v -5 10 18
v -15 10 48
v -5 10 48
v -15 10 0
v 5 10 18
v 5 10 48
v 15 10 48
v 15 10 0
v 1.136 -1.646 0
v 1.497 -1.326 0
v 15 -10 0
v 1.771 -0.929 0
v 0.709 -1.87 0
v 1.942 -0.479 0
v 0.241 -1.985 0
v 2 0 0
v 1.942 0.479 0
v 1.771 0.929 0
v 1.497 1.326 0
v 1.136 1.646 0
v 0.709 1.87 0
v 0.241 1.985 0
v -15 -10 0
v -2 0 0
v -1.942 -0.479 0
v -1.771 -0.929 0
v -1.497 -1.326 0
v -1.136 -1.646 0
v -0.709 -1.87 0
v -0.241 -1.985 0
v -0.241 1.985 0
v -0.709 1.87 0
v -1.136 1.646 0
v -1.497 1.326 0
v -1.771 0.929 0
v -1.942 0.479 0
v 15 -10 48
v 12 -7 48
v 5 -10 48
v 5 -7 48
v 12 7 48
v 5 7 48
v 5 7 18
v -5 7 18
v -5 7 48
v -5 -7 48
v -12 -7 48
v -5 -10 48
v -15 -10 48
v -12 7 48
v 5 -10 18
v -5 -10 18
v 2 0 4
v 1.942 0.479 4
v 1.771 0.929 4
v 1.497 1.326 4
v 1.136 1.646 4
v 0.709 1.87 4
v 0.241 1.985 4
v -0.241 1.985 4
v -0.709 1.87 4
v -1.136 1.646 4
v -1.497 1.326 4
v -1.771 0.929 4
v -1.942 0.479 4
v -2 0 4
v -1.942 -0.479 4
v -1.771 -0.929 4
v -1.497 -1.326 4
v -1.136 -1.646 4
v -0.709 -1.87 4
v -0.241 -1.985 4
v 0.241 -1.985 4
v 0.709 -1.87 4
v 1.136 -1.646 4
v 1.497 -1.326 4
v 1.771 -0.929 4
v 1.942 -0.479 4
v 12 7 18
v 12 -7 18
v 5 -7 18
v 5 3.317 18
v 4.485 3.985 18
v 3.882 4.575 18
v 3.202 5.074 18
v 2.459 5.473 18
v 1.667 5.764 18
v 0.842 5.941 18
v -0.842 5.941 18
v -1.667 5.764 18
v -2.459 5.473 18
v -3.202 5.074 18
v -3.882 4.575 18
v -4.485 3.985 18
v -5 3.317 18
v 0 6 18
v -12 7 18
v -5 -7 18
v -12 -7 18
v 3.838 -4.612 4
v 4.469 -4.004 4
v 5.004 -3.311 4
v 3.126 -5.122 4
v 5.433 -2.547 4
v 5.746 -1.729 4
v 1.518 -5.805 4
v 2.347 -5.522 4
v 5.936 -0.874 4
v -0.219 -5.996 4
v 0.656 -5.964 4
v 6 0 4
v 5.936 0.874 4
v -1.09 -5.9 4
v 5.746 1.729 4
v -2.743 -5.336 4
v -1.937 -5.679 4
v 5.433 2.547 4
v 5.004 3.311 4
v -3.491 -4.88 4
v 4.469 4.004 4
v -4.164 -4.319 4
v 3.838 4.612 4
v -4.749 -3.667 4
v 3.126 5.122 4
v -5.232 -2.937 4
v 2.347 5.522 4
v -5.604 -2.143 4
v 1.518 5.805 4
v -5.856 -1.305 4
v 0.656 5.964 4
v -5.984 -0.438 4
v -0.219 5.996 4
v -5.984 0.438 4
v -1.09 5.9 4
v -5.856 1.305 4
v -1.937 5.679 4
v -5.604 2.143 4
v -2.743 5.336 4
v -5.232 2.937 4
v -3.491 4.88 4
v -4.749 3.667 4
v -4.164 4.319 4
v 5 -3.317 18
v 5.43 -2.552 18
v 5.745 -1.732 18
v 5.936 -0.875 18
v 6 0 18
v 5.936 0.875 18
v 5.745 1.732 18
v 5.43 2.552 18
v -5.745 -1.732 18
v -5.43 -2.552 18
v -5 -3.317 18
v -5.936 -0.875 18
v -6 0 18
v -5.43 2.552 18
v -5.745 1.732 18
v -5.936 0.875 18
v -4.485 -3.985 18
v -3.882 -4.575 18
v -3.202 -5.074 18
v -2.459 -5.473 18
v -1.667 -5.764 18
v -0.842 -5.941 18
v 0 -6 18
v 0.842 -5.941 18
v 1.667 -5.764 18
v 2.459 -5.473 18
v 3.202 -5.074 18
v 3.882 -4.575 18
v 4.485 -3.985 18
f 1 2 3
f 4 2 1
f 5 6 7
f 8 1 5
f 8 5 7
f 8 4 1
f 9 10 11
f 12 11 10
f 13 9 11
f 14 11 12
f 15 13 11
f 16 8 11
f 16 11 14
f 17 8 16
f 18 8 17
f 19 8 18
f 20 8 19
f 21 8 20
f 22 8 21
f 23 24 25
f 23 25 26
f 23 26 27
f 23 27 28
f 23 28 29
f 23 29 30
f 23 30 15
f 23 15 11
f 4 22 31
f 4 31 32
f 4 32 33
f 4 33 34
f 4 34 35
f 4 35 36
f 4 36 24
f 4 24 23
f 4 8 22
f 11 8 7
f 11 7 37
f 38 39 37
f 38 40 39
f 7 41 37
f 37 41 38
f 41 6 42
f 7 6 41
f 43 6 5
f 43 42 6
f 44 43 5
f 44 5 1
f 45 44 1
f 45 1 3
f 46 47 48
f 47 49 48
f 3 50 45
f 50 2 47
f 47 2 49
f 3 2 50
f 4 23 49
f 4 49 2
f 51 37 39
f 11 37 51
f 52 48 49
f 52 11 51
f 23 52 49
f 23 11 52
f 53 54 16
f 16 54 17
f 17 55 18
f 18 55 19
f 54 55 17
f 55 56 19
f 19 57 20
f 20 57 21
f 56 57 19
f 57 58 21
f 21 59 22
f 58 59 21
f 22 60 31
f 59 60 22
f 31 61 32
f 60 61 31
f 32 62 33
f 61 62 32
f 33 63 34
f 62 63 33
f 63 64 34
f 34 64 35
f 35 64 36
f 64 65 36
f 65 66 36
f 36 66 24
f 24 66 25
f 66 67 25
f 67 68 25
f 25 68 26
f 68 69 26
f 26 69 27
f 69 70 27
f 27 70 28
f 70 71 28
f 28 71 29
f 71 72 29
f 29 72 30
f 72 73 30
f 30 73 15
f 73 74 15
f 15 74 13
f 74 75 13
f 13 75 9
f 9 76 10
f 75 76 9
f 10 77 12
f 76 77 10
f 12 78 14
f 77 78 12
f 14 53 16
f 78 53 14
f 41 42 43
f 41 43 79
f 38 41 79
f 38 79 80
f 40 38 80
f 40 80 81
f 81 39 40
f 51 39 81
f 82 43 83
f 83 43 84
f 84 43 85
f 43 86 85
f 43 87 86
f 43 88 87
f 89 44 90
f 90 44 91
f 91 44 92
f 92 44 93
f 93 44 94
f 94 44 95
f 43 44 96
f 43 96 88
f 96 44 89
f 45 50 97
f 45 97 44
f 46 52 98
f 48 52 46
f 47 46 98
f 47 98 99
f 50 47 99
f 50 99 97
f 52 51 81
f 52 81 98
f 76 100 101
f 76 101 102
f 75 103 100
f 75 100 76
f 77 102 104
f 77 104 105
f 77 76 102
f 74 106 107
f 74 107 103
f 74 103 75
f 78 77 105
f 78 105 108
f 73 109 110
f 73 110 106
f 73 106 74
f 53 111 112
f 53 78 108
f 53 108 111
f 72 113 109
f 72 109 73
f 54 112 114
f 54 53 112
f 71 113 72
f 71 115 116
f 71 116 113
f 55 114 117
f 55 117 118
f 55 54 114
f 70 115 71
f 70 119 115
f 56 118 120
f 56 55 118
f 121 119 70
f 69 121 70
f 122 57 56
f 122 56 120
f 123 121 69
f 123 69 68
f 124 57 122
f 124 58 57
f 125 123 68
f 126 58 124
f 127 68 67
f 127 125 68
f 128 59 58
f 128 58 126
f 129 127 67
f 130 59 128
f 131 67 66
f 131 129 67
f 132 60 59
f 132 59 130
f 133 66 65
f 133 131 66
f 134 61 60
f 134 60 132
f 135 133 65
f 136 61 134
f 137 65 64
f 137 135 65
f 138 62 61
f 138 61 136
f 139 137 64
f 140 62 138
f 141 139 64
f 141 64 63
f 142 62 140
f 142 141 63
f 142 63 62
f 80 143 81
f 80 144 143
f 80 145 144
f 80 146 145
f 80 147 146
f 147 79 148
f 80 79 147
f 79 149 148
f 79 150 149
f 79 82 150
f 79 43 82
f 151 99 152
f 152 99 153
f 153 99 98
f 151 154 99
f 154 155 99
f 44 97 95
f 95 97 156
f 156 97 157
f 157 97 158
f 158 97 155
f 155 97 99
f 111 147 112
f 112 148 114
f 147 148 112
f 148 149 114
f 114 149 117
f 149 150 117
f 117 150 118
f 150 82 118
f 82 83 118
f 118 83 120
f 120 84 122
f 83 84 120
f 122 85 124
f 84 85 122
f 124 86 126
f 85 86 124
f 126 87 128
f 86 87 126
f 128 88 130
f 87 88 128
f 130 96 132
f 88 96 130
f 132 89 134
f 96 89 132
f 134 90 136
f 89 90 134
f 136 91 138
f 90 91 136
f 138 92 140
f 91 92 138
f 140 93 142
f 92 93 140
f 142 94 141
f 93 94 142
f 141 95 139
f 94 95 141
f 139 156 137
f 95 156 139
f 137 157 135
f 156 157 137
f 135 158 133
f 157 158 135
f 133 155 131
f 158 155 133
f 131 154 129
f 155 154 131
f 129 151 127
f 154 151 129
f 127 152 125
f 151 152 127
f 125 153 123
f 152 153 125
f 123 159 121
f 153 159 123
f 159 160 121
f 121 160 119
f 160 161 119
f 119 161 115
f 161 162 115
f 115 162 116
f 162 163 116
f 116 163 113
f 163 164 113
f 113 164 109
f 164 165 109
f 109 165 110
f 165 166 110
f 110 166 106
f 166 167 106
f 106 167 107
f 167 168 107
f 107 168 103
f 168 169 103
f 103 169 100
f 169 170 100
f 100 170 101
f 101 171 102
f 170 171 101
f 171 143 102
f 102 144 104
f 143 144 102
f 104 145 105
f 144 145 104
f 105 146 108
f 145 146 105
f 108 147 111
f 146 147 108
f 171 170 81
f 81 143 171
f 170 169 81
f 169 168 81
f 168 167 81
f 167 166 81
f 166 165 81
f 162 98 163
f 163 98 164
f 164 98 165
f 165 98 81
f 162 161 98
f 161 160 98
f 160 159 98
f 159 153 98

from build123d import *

# Parameters (mm, degrees)
SKETCH_W        = 30
SKETCH_H        = 20
PAD_DEPTH       = 48
SKETCH001_W     = 24
SKETCH001_H     = 14
POCKET_DEPTH    = 30
SKETCH002_R     = 2
POCKET001_DEPTH = 18.001
SKETCH003_R     = 6
POCKET002_DEPTH = 14
SKETCH004_W     = 10
SKETCH004_H     = 31.196079
POCKET003_DEPTH = 20.001


with BuildPart() as part:
    # Sketch → Pad (new body)
    with BuildSketch(Plane.XY):
        Rectangle(SKETCH_W, SKETCH_H)
    extrude(amount=PAD_DEPTH)

    # Sketch001 (on Face6 of Pad) → Pocket (cut)
    with BuildSketch(Plane.XY.offset(48)):
        Rectangle(SKETCH001_W, SKETCH001_H)
    extrude(amount=-POCKET_DEPTH, mode=Mode.SUBTRACT)

    # Sketch002 (on Face11 of Pocket) → Pocket001 (cut, through all)
    with BuildSketch(Plane.XY.offset(18)):
        Circle(SKETCH002_R)
    extrude(amount=-POCKET001_DEPTH, mode=Mode.SUBTRACT)

    # Sketch003 (on Face12 of Pocket001) → Pocket002 (cut)
    with BuildSketch(Plane.XY.offset(18)):
        Circle(SKETCH003_R)
    extrude(amount=-POCKET002_DEPTH, mode=Mode.SUBTRACT)

    # Sketch004 (on Face6 of Pocket002) → Pocket003 (cut, through all)
    with BuildSketch(Plane.XZ.offset(10)):
        with Locations((0, 33.598039)):
            Rectangle(SKETCH004_W, SKETCH004_H)
    extrude(amount=-POCKET003_DEPTH, mode=Mode.SUBTRACT)


solid = part.part
